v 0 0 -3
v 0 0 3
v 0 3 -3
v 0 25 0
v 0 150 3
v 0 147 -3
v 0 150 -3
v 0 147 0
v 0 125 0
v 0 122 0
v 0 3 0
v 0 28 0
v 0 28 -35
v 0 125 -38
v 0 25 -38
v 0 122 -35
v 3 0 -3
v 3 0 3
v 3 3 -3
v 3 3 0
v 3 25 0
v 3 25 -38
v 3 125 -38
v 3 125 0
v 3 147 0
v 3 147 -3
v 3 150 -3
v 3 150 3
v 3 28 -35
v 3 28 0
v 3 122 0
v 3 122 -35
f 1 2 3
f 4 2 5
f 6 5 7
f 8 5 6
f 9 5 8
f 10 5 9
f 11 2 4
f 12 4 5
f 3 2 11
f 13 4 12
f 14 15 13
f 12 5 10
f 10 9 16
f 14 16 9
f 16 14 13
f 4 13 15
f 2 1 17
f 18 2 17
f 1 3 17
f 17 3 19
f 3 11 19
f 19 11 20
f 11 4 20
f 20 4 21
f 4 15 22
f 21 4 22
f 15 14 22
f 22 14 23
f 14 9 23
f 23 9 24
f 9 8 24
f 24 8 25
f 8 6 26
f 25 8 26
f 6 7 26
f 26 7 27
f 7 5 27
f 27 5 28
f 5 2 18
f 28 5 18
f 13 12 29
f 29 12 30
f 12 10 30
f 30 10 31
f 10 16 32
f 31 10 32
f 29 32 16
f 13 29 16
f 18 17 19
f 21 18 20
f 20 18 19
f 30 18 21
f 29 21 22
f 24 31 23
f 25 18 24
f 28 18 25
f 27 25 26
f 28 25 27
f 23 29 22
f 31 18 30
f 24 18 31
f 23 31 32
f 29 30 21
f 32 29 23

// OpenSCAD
union() {
	cube([3, 150, 3]);
	translate([0, 0, -3]) {
		cube([3, 3, 3]);
	}
	translate([0, 147, -3]) {
		cube([3, 3, 3]);
	}
	translate([0, 25, -35]) {
		cube([3, 3, 35]);
	}
	translate([0, 122, -35]) {
		cube([3, 3, 35]);
	}
	translate([0, 25, -38]) {
		cube([3, 100, 3]);
	}
};
